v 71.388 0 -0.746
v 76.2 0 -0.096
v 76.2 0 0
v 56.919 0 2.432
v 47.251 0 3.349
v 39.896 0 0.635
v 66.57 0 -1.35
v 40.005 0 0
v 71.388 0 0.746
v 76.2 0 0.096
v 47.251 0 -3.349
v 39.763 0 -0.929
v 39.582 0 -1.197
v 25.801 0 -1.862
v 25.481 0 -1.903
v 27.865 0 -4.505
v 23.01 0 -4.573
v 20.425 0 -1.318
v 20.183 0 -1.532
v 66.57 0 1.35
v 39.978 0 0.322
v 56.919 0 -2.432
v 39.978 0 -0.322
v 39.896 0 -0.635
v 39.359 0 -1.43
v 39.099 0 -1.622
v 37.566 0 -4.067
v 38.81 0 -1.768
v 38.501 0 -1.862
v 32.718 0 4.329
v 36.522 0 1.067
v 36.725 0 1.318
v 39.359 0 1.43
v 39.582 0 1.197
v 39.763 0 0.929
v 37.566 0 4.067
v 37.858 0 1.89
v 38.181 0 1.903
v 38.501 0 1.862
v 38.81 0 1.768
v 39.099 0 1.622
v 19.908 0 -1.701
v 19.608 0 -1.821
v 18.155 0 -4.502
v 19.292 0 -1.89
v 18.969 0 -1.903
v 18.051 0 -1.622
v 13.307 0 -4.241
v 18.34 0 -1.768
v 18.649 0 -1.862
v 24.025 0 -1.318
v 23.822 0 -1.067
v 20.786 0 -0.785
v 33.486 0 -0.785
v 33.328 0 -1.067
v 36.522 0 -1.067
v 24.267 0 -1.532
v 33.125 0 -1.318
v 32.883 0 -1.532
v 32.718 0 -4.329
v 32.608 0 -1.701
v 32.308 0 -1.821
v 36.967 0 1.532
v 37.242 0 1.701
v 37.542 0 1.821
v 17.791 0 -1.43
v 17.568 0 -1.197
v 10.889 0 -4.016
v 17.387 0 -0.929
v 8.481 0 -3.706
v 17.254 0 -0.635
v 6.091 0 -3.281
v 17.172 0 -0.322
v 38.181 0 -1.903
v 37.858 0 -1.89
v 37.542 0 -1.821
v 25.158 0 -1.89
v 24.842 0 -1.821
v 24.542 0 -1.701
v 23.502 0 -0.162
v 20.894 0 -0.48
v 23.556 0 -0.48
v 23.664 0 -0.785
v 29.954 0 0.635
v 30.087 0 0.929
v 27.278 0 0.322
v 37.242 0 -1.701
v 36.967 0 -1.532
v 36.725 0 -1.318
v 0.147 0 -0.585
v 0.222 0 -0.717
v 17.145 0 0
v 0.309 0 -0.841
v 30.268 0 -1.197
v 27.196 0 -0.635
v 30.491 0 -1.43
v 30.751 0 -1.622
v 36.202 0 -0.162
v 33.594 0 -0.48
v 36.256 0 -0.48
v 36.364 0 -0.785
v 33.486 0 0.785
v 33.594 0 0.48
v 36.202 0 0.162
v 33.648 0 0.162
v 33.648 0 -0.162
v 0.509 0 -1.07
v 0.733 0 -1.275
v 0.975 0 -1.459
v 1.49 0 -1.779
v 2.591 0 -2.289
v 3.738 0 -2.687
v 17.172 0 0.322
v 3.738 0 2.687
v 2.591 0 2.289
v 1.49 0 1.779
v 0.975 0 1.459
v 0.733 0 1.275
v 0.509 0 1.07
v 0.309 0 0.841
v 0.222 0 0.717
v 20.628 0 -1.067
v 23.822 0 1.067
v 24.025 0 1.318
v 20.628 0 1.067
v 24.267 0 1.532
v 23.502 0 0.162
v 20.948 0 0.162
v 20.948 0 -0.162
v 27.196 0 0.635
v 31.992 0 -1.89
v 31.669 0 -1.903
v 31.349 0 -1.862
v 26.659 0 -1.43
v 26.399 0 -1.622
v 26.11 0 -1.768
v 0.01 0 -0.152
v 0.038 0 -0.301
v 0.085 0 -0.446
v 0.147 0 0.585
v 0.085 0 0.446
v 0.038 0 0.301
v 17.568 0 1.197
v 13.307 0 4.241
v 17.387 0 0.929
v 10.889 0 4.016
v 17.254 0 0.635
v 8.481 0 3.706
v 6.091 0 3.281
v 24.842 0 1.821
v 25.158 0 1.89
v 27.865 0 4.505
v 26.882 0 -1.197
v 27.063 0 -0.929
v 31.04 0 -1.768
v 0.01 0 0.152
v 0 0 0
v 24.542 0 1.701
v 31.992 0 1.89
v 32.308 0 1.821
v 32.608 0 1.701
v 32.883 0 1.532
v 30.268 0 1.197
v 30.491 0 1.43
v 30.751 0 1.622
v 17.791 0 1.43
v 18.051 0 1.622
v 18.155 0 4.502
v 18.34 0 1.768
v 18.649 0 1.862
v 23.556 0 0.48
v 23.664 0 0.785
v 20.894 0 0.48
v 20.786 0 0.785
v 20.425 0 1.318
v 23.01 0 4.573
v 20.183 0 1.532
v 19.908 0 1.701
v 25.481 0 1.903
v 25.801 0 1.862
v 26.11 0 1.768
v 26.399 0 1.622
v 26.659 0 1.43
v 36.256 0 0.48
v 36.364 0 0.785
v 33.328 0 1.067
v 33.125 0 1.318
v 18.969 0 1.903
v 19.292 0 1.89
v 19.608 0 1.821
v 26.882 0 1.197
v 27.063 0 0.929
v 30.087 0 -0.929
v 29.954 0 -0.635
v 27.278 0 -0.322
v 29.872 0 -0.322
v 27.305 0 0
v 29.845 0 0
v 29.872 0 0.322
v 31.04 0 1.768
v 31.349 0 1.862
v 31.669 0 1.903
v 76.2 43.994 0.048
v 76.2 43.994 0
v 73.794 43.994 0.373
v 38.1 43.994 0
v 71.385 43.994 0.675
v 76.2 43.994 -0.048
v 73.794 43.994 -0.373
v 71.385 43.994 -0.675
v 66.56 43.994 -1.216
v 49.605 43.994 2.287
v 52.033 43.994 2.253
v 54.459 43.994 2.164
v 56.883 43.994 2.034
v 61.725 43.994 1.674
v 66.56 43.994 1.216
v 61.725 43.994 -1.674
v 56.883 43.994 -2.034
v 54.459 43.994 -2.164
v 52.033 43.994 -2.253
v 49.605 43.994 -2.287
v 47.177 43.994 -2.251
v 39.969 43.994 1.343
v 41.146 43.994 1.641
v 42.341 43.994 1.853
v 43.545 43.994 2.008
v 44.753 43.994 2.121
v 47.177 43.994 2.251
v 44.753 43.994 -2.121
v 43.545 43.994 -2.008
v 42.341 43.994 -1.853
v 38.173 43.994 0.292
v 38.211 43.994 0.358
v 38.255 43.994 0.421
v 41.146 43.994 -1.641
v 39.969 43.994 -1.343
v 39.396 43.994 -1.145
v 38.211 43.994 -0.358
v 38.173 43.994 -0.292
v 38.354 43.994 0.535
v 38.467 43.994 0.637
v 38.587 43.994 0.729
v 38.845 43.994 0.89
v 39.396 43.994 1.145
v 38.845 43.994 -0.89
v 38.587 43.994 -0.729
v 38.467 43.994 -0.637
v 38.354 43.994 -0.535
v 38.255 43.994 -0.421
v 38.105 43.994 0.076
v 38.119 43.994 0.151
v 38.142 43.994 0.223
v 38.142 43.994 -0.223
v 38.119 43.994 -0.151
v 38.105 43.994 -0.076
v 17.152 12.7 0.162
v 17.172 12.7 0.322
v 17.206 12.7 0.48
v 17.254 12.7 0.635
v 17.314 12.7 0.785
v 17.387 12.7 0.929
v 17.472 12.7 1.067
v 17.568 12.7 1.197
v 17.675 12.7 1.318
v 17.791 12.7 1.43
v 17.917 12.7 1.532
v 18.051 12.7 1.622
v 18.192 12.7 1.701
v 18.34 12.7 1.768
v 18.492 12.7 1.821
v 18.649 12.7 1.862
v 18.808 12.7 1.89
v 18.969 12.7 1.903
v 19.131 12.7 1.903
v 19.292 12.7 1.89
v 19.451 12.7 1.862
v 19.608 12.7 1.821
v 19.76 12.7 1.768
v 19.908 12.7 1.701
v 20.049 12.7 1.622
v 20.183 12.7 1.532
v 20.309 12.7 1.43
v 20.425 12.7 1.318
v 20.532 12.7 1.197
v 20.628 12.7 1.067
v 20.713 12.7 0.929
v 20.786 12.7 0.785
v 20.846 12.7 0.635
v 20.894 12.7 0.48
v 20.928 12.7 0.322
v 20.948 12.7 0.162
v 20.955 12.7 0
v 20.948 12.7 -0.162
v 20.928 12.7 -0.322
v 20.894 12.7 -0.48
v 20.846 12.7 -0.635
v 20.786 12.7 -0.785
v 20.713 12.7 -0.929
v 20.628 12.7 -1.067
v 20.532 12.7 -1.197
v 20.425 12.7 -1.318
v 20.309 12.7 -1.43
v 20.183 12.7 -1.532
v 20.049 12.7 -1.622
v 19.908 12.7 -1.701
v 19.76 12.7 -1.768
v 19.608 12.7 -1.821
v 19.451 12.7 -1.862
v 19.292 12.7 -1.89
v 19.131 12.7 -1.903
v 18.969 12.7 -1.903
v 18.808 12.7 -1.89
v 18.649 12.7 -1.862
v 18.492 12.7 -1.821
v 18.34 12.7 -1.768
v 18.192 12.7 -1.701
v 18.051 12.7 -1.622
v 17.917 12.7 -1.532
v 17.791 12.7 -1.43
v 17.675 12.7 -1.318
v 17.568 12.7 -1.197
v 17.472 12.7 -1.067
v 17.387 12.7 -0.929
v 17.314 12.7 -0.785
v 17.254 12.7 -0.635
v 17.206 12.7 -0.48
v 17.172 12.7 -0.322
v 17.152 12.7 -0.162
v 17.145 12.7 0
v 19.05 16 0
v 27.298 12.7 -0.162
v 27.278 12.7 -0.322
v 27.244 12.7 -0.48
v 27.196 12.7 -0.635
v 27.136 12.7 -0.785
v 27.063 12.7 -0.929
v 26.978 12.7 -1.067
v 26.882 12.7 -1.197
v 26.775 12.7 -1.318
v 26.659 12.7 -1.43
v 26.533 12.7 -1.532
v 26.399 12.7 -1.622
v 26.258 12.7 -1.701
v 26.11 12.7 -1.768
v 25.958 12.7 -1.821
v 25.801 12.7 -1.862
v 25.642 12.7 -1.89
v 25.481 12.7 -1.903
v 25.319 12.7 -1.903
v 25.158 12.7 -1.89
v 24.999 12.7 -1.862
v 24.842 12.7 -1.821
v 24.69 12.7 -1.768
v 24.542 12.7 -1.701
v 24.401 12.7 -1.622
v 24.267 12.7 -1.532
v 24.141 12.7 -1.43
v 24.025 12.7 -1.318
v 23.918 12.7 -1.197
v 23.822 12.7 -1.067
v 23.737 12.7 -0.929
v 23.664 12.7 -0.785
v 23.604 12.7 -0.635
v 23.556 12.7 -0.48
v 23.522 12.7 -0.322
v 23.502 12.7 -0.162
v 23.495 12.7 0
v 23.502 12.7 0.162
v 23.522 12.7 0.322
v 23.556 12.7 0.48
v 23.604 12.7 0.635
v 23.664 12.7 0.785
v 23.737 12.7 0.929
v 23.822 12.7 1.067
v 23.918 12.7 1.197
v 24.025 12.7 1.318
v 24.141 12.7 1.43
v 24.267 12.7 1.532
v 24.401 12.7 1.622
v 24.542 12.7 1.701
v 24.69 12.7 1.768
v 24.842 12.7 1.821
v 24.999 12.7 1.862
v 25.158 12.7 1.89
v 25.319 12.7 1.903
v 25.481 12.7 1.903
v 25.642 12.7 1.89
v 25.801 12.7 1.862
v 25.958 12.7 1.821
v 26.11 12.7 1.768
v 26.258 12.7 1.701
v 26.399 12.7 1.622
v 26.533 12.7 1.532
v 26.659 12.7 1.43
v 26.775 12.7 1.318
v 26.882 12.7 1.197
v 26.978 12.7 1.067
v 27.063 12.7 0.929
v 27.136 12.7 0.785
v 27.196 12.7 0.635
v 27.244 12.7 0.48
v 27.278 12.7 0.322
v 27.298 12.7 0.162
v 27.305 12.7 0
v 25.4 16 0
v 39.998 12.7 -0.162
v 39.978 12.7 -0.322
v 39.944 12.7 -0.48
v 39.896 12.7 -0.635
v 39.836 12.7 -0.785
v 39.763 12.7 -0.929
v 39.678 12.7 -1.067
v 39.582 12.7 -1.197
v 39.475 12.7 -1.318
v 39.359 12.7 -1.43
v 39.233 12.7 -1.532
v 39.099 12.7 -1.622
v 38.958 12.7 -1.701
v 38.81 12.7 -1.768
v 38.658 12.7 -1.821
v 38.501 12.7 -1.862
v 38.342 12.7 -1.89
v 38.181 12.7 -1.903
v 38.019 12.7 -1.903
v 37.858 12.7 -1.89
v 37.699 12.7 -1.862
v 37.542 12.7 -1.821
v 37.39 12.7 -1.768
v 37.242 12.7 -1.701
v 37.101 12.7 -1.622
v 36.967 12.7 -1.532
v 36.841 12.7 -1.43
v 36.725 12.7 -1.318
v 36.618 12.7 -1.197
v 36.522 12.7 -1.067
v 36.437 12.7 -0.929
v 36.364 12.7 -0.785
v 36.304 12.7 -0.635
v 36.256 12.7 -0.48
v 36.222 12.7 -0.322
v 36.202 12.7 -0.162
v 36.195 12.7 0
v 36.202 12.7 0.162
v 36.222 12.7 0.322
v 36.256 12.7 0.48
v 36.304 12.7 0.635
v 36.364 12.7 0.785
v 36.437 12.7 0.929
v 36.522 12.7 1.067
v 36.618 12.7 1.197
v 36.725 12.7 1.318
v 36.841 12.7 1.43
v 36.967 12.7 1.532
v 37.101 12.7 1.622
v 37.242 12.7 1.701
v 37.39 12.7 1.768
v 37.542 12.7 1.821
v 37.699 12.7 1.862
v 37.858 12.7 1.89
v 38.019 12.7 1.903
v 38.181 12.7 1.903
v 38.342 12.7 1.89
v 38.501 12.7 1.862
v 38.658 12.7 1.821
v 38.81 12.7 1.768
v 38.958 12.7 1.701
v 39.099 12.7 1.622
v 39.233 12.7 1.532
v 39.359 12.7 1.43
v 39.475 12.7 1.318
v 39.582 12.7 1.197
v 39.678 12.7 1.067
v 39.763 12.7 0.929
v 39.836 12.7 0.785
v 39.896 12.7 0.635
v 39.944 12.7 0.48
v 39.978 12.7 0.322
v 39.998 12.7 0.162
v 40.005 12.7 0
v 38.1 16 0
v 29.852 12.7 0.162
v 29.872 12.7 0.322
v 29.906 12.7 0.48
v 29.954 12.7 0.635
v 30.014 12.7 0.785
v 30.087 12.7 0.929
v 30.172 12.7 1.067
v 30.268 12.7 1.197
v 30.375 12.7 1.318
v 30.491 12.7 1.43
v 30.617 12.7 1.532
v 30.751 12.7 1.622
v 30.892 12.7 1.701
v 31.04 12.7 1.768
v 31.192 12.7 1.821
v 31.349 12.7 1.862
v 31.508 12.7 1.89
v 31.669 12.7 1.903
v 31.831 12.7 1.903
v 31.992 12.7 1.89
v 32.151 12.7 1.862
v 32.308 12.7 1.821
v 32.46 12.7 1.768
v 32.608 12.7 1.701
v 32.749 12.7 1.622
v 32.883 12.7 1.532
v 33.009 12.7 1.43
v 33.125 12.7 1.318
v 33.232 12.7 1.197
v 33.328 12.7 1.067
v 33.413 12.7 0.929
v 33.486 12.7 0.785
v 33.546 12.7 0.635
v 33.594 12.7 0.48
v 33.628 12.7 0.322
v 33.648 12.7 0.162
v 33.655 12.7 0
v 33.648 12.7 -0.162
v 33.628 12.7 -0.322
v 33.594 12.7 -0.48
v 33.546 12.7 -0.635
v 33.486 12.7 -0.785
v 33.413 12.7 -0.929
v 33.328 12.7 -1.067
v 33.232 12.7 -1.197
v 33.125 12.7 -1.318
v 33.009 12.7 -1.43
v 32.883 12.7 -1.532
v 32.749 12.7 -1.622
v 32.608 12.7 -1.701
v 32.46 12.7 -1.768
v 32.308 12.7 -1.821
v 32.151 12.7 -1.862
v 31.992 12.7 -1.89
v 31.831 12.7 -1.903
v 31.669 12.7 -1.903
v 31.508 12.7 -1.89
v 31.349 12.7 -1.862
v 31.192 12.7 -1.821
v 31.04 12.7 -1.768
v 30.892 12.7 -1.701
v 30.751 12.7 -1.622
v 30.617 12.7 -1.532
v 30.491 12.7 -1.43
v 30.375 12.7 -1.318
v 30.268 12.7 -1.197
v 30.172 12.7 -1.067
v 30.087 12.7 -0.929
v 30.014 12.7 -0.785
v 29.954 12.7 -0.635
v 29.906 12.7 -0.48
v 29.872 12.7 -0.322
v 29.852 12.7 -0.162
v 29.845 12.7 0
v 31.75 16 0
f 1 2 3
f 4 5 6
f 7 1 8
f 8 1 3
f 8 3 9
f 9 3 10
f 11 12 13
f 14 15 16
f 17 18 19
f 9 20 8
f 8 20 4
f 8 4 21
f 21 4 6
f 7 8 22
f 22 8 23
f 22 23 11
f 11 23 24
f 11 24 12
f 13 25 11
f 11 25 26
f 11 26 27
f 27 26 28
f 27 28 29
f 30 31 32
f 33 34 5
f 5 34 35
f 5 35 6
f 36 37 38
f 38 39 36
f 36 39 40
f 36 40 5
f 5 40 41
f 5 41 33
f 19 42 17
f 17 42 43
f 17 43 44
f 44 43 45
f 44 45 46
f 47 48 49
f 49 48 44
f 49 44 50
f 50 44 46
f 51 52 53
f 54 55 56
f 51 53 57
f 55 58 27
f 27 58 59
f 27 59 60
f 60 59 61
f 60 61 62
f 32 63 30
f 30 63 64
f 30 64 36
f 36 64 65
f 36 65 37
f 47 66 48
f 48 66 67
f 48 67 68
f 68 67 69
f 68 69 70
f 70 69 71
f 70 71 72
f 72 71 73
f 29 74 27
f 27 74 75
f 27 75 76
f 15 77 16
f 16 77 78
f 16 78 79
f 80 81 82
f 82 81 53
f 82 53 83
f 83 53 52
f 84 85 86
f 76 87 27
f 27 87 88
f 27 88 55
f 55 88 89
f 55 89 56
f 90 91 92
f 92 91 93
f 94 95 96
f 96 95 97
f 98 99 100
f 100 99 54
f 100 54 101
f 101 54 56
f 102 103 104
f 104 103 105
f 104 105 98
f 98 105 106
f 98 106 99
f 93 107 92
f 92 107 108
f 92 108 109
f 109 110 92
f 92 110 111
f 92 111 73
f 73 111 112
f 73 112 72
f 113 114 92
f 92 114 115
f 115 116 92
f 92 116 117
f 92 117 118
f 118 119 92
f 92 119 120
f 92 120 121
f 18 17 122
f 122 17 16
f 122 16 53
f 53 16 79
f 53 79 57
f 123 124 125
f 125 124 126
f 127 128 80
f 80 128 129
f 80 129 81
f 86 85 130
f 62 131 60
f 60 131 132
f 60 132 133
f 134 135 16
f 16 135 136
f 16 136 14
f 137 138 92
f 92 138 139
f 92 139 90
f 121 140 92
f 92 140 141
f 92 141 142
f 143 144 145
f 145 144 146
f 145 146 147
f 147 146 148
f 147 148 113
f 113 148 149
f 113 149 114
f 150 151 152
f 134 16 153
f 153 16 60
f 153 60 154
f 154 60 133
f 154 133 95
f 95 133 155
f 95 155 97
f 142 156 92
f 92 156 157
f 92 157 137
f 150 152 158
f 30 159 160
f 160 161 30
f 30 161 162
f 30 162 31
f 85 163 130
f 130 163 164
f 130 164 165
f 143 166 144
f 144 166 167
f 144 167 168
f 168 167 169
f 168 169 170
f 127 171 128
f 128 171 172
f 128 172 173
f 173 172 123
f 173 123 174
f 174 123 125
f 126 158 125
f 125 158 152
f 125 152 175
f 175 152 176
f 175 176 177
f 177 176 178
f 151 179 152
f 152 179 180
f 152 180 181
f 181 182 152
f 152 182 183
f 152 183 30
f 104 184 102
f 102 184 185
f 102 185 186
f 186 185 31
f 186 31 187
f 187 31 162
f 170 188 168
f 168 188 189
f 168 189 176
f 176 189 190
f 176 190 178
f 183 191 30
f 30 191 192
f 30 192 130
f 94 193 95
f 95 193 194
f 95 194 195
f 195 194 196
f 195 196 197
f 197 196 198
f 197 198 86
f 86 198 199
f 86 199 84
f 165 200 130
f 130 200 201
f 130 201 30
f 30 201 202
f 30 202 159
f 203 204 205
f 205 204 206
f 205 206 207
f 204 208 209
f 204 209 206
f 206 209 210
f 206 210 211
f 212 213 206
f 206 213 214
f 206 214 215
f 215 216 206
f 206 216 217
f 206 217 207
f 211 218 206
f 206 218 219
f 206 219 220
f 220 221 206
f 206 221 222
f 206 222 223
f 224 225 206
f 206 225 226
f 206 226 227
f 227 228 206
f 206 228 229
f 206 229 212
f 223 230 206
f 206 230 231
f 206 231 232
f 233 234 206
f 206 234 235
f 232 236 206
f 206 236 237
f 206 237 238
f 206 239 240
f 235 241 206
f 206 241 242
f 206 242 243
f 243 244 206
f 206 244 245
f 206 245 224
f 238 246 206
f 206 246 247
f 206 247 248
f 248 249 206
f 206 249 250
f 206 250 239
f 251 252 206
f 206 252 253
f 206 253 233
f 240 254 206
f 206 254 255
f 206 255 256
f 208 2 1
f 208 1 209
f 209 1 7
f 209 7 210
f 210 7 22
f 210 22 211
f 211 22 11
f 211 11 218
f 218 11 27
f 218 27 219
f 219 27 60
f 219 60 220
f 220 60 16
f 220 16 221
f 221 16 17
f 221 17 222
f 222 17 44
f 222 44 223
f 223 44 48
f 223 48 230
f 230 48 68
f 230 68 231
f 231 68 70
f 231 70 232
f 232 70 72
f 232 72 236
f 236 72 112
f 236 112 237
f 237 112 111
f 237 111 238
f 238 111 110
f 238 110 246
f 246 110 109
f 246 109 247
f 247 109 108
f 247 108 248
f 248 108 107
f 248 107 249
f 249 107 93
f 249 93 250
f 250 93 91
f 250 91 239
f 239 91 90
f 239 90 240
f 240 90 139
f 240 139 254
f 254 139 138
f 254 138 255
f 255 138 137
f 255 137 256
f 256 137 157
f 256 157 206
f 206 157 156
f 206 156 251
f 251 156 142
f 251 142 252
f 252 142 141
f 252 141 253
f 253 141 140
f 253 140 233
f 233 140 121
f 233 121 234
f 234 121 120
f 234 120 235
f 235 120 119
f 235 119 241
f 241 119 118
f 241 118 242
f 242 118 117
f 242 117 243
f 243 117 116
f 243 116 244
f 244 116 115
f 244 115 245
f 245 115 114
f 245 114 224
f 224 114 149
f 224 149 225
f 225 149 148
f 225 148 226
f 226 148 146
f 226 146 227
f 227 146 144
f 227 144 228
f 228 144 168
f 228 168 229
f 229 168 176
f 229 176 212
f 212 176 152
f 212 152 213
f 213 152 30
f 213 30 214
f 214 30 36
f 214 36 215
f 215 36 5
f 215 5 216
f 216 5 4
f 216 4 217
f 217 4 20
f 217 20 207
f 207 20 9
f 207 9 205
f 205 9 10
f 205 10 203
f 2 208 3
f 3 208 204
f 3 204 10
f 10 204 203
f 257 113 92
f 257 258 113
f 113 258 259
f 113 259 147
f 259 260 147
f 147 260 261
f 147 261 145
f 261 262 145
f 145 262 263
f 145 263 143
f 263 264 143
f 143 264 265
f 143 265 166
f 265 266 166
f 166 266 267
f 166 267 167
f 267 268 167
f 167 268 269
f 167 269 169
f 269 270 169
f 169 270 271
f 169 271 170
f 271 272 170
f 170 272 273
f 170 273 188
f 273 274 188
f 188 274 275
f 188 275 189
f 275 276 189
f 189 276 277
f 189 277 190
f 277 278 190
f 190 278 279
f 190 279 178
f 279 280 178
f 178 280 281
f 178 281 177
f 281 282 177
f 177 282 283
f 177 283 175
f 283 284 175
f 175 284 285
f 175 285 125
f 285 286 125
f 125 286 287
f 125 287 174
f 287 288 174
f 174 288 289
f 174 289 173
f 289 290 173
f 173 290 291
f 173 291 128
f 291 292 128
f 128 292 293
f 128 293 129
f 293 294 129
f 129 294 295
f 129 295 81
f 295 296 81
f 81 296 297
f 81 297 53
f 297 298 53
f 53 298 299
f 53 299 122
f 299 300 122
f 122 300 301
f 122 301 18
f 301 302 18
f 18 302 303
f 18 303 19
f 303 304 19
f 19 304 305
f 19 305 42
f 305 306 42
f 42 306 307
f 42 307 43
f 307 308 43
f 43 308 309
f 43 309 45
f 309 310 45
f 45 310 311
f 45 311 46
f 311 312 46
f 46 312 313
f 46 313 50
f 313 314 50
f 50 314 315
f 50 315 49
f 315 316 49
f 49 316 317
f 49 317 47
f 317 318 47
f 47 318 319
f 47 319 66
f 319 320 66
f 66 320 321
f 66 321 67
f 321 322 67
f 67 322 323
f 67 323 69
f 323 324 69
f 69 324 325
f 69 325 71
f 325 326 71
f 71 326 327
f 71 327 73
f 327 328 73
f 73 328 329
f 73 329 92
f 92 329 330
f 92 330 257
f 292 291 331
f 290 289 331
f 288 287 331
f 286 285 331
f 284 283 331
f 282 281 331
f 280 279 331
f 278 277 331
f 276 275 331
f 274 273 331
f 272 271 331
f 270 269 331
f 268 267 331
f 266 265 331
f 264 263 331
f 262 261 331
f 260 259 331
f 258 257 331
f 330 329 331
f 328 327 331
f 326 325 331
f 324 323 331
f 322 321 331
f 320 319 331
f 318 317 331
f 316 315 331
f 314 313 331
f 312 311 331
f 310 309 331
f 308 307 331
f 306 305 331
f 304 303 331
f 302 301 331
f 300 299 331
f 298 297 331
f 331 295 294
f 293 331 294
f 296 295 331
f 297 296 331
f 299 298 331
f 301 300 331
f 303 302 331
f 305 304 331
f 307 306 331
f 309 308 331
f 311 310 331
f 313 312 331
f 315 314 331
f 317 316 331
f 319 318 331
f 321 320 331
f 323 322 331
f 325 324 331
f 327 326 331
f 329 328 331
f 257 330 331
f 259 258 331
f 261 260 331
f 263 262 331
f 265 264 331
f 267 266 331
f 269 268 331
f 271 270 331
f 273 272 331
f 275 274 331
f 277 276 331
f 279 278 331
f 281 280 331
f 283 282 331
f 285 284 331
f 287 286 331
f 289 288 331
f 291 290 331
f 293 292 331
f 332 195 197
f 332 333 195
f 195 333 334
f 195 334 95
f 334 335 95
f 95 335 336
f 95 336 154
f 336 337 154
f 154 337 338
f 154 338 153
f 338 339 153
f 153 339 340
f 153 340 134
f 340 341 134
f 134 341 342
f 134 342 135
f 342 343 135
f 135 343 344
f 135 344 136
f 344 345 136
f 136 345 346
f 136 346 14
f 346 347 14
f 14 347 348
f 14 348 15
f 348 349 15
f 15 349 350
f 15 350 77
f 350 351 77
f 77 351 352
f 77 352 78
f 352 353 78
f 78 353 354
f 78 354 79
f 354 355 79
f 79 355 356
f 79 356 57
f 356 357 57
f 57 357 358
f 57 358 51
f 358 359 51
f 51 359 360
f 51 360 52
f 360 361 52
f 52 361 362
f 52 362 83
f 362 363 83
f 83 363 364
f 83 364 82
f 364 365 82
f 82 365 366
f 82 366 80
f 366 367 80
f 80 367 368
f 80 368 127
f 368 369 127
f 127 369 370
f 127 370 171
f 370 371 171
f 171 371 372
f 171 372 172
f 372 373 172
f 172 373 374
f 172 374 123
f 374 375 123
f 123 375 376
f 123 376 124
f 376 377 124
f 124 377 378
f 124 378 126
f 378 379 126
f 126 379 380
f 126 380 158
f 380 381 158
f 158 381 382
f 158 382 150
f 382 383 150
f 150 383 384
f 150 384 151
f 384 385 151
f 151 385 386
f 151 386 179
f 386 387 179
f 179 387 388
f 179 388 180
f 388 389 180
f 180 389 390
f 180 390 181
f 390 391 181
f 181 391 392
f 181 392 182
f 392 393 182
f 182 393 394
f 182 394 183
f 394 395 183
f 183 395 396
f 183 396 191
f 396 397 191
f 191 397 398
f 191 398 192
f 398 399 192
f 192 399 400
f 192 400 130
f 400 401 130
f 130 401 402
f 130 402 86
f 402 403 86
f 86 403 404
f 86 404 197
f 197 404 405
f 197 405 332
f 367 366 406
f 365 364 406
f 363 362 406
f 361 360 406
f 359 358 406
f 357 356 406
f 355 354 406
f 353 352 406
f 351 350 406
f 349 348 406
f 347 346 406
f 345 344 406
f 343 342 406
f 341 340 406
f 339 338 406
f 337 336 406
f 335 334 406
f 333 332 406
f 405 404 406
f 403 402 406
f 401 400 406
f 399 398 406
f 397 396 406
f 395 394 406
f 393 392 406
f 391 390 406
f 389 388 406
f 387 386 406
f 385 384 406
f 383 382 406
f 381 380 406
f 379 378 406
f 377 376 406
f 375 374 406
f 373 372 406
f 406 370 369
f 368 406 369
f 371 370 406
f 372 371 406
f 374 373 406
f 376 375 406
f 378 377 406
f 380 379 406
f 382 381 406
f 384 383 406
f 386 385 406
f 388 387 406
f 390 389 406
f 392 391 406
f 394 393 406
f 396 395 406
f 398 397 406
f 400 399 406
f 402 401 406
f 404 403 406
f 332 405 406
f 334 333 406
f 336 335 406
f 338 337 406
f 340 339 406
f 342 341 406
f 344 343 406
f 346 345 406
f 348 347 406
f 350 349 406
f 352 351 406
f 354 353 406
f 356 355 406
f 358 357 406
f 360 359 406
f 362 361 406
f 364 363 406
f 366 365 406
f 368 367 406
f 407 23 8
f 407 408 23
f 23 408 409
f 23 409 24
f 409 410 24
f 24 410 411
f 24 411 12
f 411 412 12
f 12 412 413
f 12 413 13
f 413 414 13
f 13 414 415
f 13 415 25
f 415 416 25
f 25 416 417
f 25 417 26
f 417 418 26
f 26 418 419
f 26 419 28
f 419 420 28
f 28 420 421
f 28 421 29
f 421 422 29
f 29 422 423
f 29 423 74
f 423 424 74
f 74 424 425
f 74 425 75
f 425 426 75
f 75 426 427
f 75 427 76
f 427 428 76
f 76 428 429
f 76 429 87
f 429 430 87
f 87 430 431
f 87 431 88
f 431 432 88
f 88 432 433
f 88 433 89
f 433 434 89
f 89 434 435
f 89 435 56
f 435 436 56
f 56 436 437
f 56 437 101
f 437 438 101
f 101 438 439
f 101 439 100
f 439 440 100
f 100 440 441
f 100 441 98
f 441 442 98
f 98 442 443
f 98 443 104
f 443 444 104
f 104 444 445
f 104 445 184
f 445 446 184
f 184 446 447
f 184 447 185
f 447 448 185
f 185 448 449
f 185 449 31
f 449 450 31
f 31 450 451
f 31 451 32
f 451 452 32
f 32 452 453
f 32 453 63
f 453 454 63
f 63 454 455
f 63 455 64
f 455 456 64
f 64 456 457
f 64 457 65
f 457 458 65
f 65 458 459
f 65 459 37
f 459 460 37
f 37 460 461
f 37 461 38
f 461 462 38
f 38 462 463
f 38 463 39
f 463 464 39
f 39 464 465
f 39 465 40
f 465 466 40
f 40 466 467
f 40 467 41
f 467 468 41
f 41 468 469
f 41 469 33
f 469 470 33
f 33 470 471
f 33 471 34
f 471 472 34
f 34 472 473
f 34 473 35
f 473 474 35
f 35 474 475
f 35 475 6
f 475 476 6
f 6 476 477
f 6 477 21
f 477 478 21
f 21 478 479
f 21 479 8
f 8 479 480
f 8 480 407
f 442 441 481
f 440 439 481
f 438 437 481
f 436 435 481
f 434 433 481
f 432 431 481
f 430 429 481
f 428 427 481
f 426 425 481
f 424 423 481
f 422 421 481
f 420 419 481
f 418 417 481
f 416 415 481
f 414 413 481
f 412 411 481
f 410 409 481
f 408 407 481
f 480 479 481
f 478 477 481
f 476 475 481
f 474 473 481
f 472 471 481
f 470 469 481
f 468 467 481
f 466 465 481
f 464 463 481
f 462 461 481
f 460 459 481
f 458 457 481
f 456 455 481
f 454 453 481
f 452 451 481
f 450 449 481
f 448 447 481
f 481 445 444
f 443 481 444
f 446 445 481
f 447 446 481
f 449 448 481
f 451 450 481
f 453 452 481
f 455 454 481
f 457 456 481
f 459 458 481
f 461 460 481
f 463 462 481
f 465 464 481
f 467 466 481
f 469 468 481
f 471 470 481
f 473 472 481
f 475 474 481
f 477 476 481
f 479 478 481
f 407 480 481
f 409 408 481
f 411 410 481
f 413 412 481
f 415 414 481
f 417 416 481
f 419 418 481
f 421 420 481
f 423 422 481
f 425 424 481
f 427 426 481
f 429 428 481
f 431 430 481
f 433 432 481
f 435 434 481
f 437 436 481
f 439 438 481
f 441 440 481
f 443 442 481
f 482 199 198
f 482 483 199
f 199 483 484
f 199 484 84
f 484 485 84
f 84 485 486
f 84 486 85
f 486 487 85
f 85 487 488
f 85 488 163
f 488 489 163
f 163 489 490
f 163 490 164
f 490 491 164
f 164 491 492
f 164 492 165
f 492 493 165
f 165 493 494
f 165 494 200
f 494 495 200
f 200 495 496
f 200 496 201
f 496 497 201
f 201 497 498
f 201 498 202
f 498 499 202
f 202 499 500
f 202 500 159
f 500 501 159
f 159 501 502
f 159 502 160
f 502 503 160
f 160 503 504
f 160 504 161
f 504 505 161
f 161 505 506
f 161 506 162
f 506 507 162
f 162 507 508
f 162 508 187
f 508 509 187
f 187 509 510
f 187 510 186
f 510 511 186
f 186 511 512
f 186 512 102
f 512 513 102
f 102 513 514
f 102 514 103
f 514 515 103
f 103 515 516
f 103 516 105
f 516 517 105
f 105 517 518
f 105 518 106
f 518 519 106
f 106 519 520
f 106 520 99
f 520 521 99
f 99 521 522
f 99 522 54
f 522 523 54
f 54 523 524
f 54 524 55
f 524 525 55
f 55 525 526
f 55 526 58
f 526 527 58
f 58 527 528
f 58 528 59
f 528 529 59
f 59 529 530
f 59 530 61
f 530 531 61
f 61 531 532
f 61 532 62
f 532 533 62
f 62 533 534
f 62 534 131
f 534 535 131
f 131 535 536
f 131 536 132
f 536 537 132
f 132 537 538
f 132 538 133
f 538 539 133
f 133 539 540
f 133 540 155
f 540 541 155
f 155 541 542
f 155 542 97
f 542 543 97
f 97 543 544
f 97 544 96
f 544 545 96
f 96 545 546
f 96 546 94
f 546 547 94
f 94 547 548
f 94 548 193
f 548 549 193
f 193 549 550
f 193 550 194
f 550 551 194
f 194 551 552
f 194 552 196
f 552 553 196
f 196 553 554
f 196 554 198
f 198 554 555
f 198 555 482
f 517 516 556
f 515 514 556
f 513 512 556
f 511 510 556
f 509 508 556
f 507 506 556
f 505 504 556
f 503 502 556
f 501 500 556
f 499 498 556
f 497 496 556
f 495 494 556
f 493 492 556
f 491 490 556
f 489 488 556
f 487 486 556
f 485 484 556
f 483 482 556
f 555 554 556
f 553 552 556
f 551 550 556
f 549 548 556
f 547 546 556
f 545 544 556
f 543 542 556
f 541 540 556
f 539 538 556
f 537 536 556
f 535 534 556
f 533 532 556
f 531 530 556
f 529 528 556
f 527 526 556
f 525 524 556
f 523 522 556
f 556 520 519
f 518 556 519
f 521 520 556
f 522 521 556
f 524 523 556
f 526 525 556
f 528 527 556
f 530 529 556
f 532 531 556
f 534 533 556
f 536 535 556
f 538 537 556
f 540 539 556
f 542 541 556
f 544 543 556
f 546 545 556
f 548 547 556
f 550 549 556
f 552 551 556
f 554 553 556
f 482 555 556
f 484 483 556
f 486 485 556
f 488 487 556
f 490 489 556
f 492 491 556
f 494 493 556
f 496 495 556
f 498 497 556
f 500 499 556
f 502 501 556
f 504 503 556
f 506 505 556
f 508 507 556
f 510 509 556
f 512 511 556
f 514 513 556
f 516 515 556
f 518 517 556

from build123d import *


with BuildPart() as part:
    # Sketch5 → Loft11 section 0
    with BuildSketch(Plane(origin=(0, 43.994090512, 0), x_dir=(1, 0, 0), z_dir=(0, 1, 0))):
        with BuildLine():
            Line((76.2, 0.048006), (76.2, -0.048006))
            add(Edge.make_bspline(
                [(76.2, -0.048006), (76.192583251, -0.049047765), (76.162942912, -0.053211081), (76.044647253, -0.069755857), (75.867562125, -0.094486743), (75.632052521, -0.126965392), (75.390396557, -0.160190201), (75.106127116, -0.198904989), (74.779917937, -0.242859006), (74.412541545, -0.291864294), (74.004851816, -0.345569023), (73.55779868, -0.403720926), (73.072416984, -0.465853222), (72.352060102, -0.55677244), (71.584541596, -0.651127112), (70.771637318, -0.748448048), (70.113353772, -0.825737809), (69.424771293, -0.904853153), (68.707537282, -0.985592031), (67.963304352, -1.067375261), (67.193834288, -1.14998319), (66.400894079, -1.232825488), (65.586352847, -1.315748636), (64.752102975, -1.398113207), (63.90010602, -1.479660513), (63.032340473, -1.559824173), (62.150830619, -1.638342101), (61.257640656, -1.714565201), (60.354852072, -1.788152536), (59.444584786, -1.858634165), (58.528953151, -1.925444296), (57.610108942, -1.988163902), (56.690197069, -2.046291991), (55.467880801, -2.116763144), (54.251069434, -2.176215597), (52.748712156, -2.234066929), (51.565971548, -2.266645454), (50.400091132, -2.283584551), (49.548035029, -2.288048273), (48.713726655, -2.284102235), (47.899118606, -2.271569022), (47.10611977, -2.250069868), (46.336564553, -2.21969991), (45.59224861, -2.180240934), (44.874904805, -2.131803537), (44.186222319, -2.074397819), (43.527802298, -2.008128116), (42.901174603, -1.933245819), (42.307783855, -1.850055304), (41.749027942, -1.758711647), (41.226187427, -1.659671366), (40.740465618, -1.55330687), (40.292997688, -1.439978722), (39.8847724, -1.320194614), (39.516689892, -1.194352348), (39.189535118, -1.062886557), (38.903955697, -0.926176493), (38.660495695, -0.784506781), (38.45943861, -0.638117579), (38.30117294, -0.486768084), (38.186080347, -0.330029549), (38.115712554, -0.167135854), (38.092341043, 0), (38.115712554, 0.167135854), (38.186080347, 0.330029549), (38.30117294, 0.486768084), (38.45943861, 0.638117579), (38.660495695, 0.784506781), (38.903955697, 0.926176493), (39.189535118, 1.062886557), (39.516689892, 1.194352348), (39.8847724, 1.320194614), (40.292997688, 1.439978722), (40.740465618, 1.55330687), (41.226187427, 1.659671366), (41.749027942, 1.758711647), (42.307783855, 1.850055304), (42.901174603, 1.933245819), (43.527802298, 2.008128116), (44.186222319, 2.074397819), (44.874904805, 2.131803537), (45.59224861, 2.180240934), (46.336564553, 2.21969991), (47.10611977, 2.250069868), (47.899118606, 2.271569022), (48.713726655, 2.284102235), (49.548035029, 2.288048273), (50.400091132, 2.283584551), (51.565971548, 2.266645454), (53.052575769, 2.225697023), (54.554732583, 2.162253193), (55.771346838, 2.09926718), (56.690197069, 2.046291991), (57.610108942, 1.988163902), (58.528953151, 1.925444296), (59.444584786, 1.858634165), (60.354852072, 1.788152536), (61.257640656, 1.714565201), (62.150830619, 1.638342101), (63.032340473, 1.559824173), (63.90010602, 1.479660513), (64.752102975, 1.398113207), (65.586352847, 1.315748636), (66.400894079, 1.232825488), (67.193834288, 1.14998319), (67.963304352, 1.067375261), (68.707537282, 0.985592031), (69.424771293, 0.904853153), (70.113353772, 0.825737809), (70.771637318, 0.748448048), (71.584541596, 0.651127112), (72.352060102, 0.55677244), (73.072416984, 0.465853222), (73.55779868, 0.403720926), (74.004851816, 0.345569023), (74.412541545, 0.291864294), (74.779917937, 0.242859006), (75.106127116, 0.198904989), (75.390396557, 0.160190201), (75.632052521, 0.126965392), (75.867562125, 0.094486743), (76.044647253, 0.069755857), (76.162942912, 0.053211081), (76.192583251, 0.049047765), (76.2, 0.048006)],
                knots=[0, 0, 0, 0, 0.000289201, 0.001155766, 0.004612322, 0.007193518, 0.010335793, 0.014031397, 0.018271612, 0.023045847, 0.028342901, 0.03415012, 0.04045376, 0.04723833, 0.062186613, 0.070313724, 0.078851908, 0.087780126, 0.097077521, 0.106722049, 0.116690868, 0.126960505, 0.137507218, 0.148306055, 0.159330765, 0.17055649, 0.181956531, 0.193504043, 0.205171367, 0.2169323, 0.228758169, 0.2406214, 0.252494936, 0.264350287, 0.287897994, 0.299535854, 0.322404759, 0.333584032, 0.344559266, 0.35530596, 0.365799778, 0.37601757, 0.3859373, 0.395537659, 0.404797976, 0.413698812, 0.422221441, 0.430349273, 0.438066019, 0.445356904, 0.452209372, 0.458611567, 0.464554044, 0.47002985, 0.475034902, 0.479569141, 0.483636857, 0.487250263, 0.490431338, 0.493218828, 0.495674086, 0.497891368, 0.5, 0.502108632, 0.504325914, 0.506781172, 0.509568662, 0.512749737, 0.516363143, 0.520430859, 0.524965098, 0.52997015, 0.535445956, 0.541388433, 0.547790628, 0.554643096, 0.561933981, 0.569650727, 0.577778559, 0.586301188, 0.595202024, 0.604462341, 0.6140627, 0.62398243, 0.634200222, 0.64469404, 0.655440734, 0.666415968, 0.677595241, 0.700464146, 0.723839427, 0.735649713, 0.747505064, 0.7593786, 0.771241831, 0.7830677, 0.794828633, 0.806495957, 0.818043469, 0.82944351, 0.840669235, 0.851693945, 0.862492782, 0.873039495, 0.883309132, 0.893277951, 0.902922479, 0.912219874, 0.921148092, 0.929686276, 0.937813387, 0.95276167, 0.95954624, 0.96584988, 0.971657099, 0.976954153, 0.981728388, 0.985968603, 0.989664207, 0.992806482, 0.995387678, 0.998844234, 0.999710799, 1, 1, 1, 1], degree=3))
        make_face()
    # Sketch3 → Loft11 section 1
    with BuildSketch(Plane(origin=(0, 0, 0), x_dir=(1, 0, 0), z_dir=(0, 1, 0))):
        with BuildLine():
            Line((76.2, 0.096012), (76.2, -0.096012))
            add(Edge.make_bspline(
                [(76.2, -0.096012), (76.185166502, -0.09809553), (76.125885823, -0.106422162), (75.889294507, -0.139511713), (75.53512425, -0.188973486), (75.064105041, -0.253930784), (74.580793115, -0.320380401), (74.012254232, -0.397809978), (73.359835874, -0.485718012), (72.62508309, -0.583728588), (71.809703632, -0.691138045), (70.915597359, -0.807441851), (69.944833968, -0.931706445), (68.504120203, -1.113544881), (66.969083191, -1.302254225), (65.343274636, -1.496896097), (64.026707544, -1.651475618), (62.649542587, -1.809706305), (61.215074564, -1.971184062), (59.726608705, -2.134750522), (58.187668577, -2.299966381), (56.601788159, -2.465650976), (54.972705694, -2.631497273), (53.30420595, -2.796226414), (51.60021204, -2.959321026), (49.864680946, -3.119648346), (48.101661238, -3.276684202), (46.315281313, -3.429130403), (44.509704144, -3.576305072), (42.689169571, -3.71726833), (40.857906302, -3.850888591), (39.020217884, -3.976327805), (37.180394137, -4.092583982), (34.735761601, -4.233526287), (32.302138868, -4.352431193), (29.297424312, -4.468133858), (26.931943095, -4.533290908), (24.600182263, -4.567169102), (22.896070057, -4.576096546), (21.22745331, -4.56820447), (19.598237213, -4.543138044), (18.01223954, -4.500139735), (16.473129105, -4.43939982), (14.98449722, -4.360481867), (13.549809609, -4.263607073), (12.172444638, -4.148795638), (10.855604596, -4.016256231), (9.602349205, -3.866491638), (8.41556771, -3.700110609), (7.298055884, -3.517423293), (6.252374854, -3.319342733), (5.280931237, -3.10661374), (4.385995376, -2.879957444), (3.569544801, -2.640389227), (2.833379783, -2.388704697), (2.179070236, -2.125773113), (1.607911394, -1.852352986), (1.120991389, -1.569013562), (0.71887722, -1.276235157), (0.40234588, -0.973536168), (0.172160694, -0.660059098), (0.031425108, -0.334271708), (-0.015317913, 0), (0.031425108, 0.334271708), (0.172160694, 0.660059098), (0.40234588, 0.973536168), (0.71887722, 1.276235157), (1.120991389, 1.569013562), (1.607911394, 1.852352986), (2.179070236, 2.125773113), (2.833379783, 2.388704697), (3.569544801, 2.640389227), (4.385995376, 2.879957444), (5.280931237, 3.10661374), (6.252374854, 3.319342733), (7.298055884, 3.517423293), (8.41556771, 3.700110609), (9.602349205, 3.866491638), (10.855604596, 4.016256231), (12.172444638, 4.148795638), (13.549809609, 4.263607073), (14.98449722, 4.360481867), (16.473129105, 4.43939982), (18.01223954, 4.500139735), (19.598237213, 4.543138044), (21.22745331, 4.56820447), (22.896070057, 4.576096546), (24.600182263, 4.567169102), (26.931943095, 4.533290908), (29.905151537, 4.451394045), (32.909465167, 4.324506385), (35.342693676, 4.198534359), (37.180394137, 4.092583982), (39.020217884, 3.976327805), (40.857906302, 3.850888591), (42.689169571, 3.71726833), (44.509704144, 3.576305072), (46.315281313, 3.429130403), (48.101661238, 3.276684202), (49.864680946, 3.119648346), (51.60021204, 2.959321026), (53.30420595, 2.796226414), (54.972705694, 2.631497273), (56.601788159, 2.465650976), (58.187668577, 2.299966381), (59.726608705, 2.134750522), (61.215074564, 1.971184062), (62.649542587, 1.809706305), (64.026707544, 1.651475618), (65.343274636, 1.496896097), (66.969083191, 1.302254225), (68.504120203, 1.113544881), (69.944833968, 0.931706445), (70.915597359, 0.807441851), (71.809703632, 0.691138045), (72.62508309, 0.583728588), (73.359835874, 0.485718012), (74.012254232, 0.397809978), (74.580793115, 0.320380401), (75.064105041, 0.253930784), (75.53512425, 0.188973486), (75.889294507, 0.139511713), (76.125885823, 0.106422162), (76.185166502, 0.09809553), (76.2, 0.096012)],
                knots=[0, 0, 0, 0, 0.000289201, 0.001155766, 0.004612322, 0.007193518, 0.010335793, 0.014031397, 0.018271612, 0.023045847, 0.028342901, 0.03415012, 0.04045376, 0.04723833, 0.062186613, 0.070313724, 0.078851908, 0.087780126, 0.097077521, 0.106722049, 0.116690868, 0.126960505, 0.137507218, 0.148306055, 0.159330765, 0.17055649, 0.181956531, 0.193504043, 0.205171367, 0.2169323, 0.228758169, 0.2406214, 0.252494936, 0.264350287, 0.287897994, 0.299535854, 0.322404759, 0.333584032, 0.344559266, 0.35530596, 0.365799778, 0.37601757, 0.3859373, 0.395537659, 0.404797976, 0.413698812, 0.422221441, 0.430349273, 0.438066019, 0.445356904, 0.452209372, 0.458611567, 0.464554044, 0.47002985, 0.475034902, 0.479569141, 0.483636857, 0.487250263, 0.490431338, 0.493218828, 0.495674086, 0.497891368, 0.5, 0.502108632, 0.504325914, 0.506781172, 0.509568662, 0.512749737, 0.516363143, 0.520430859, 0.524965098, 0.52997015, 0.535445956, 0.541388433, 0.547790628, 0.554643096, 0.561933981, 0.569650727, 0.577778559, 0.586301188, 0.595202024, 0.604462341, 0.6140627, 0.62398243, 0.634200222, 0.64469404, 0.655440734, 0.666415968, 0.677595241, 0.700464146, 0.723839427, 0.735649713, 0.747505064, 0.7593786, 0.771241831, 0.7830677, 0.794828633, 0.806495957, 0.818043469, 0.82944351, 0.840669235, 0.851693945, 0.862492782, 0.873039495, 0.883309132, 0.893277951, 0.902922479, 0.912219874, 0.921148092, 0.929686276, 0.937813387, 0.95276167, 0.95954624, 0.96584988, 0.971657099, 0.976954153, 0.981728388, 0.985968603, 0.989664207, 0.992806482, 0.995387678, 0.998844234, 0.999710799, 1, 1, 1, 1], degree=3))
        make_face()
    loft()

    # Sketch8 → Cut-Revolve1 (revolve, cut)
    with BuildSketch(Plane.XY, mode=Mode.PRIVATE) as cut_revolve1_sk:
        Polygon((20.955, 0), (20.955, 12.7), (19.05, 15.999556788), (19.05, 0), align=None)
    cut_revolve1 = revolve(cut_revolve1_sk.sketch.rotate(Axis((19.05, 15.999556788, 0), (0, -1, 0)), 180), axis=Axis((19.05, 15.999556788, 0), (0, -1, 0)), mode=Mode.SUBTRACT)

    # Mirror1: Cut-Revolve1 across plane
    add(cut_revolve1.mirror(Plane(origin=(22.225, 0, 0), x_dir=(0, 0, 1), z_dir=(1, 0, 0))), mode=Mode.SUBTRACT)

    # Mirror2: Cut-Revolve1 across plane
    add(cut_revolve1.mirror(Plane(origin=(28.575, 0, 0), x_dir=(0, 0, 1), z_dir=(1, 0, 0))), mode=Mode.SUBTRACT)

    # Mirror2 copy 1 sketch → Mirror2 copy 1 (revolve, cut)
    with BuildSketch(Plane(origin=(12.7, 0, 0), x_dir=(1, 0, 0), z_dir=(0, 0, 1))):
        Polygon((20.955, 0), (20.955, 12.7), (19.05, 15.999556788), (19.05, 0), align=None)
    revolve(axis=Axis((31.75, 15.999556788, 0), (0, -1, 0)), mode=Mode.SUBTRACT)


solid = part.part
